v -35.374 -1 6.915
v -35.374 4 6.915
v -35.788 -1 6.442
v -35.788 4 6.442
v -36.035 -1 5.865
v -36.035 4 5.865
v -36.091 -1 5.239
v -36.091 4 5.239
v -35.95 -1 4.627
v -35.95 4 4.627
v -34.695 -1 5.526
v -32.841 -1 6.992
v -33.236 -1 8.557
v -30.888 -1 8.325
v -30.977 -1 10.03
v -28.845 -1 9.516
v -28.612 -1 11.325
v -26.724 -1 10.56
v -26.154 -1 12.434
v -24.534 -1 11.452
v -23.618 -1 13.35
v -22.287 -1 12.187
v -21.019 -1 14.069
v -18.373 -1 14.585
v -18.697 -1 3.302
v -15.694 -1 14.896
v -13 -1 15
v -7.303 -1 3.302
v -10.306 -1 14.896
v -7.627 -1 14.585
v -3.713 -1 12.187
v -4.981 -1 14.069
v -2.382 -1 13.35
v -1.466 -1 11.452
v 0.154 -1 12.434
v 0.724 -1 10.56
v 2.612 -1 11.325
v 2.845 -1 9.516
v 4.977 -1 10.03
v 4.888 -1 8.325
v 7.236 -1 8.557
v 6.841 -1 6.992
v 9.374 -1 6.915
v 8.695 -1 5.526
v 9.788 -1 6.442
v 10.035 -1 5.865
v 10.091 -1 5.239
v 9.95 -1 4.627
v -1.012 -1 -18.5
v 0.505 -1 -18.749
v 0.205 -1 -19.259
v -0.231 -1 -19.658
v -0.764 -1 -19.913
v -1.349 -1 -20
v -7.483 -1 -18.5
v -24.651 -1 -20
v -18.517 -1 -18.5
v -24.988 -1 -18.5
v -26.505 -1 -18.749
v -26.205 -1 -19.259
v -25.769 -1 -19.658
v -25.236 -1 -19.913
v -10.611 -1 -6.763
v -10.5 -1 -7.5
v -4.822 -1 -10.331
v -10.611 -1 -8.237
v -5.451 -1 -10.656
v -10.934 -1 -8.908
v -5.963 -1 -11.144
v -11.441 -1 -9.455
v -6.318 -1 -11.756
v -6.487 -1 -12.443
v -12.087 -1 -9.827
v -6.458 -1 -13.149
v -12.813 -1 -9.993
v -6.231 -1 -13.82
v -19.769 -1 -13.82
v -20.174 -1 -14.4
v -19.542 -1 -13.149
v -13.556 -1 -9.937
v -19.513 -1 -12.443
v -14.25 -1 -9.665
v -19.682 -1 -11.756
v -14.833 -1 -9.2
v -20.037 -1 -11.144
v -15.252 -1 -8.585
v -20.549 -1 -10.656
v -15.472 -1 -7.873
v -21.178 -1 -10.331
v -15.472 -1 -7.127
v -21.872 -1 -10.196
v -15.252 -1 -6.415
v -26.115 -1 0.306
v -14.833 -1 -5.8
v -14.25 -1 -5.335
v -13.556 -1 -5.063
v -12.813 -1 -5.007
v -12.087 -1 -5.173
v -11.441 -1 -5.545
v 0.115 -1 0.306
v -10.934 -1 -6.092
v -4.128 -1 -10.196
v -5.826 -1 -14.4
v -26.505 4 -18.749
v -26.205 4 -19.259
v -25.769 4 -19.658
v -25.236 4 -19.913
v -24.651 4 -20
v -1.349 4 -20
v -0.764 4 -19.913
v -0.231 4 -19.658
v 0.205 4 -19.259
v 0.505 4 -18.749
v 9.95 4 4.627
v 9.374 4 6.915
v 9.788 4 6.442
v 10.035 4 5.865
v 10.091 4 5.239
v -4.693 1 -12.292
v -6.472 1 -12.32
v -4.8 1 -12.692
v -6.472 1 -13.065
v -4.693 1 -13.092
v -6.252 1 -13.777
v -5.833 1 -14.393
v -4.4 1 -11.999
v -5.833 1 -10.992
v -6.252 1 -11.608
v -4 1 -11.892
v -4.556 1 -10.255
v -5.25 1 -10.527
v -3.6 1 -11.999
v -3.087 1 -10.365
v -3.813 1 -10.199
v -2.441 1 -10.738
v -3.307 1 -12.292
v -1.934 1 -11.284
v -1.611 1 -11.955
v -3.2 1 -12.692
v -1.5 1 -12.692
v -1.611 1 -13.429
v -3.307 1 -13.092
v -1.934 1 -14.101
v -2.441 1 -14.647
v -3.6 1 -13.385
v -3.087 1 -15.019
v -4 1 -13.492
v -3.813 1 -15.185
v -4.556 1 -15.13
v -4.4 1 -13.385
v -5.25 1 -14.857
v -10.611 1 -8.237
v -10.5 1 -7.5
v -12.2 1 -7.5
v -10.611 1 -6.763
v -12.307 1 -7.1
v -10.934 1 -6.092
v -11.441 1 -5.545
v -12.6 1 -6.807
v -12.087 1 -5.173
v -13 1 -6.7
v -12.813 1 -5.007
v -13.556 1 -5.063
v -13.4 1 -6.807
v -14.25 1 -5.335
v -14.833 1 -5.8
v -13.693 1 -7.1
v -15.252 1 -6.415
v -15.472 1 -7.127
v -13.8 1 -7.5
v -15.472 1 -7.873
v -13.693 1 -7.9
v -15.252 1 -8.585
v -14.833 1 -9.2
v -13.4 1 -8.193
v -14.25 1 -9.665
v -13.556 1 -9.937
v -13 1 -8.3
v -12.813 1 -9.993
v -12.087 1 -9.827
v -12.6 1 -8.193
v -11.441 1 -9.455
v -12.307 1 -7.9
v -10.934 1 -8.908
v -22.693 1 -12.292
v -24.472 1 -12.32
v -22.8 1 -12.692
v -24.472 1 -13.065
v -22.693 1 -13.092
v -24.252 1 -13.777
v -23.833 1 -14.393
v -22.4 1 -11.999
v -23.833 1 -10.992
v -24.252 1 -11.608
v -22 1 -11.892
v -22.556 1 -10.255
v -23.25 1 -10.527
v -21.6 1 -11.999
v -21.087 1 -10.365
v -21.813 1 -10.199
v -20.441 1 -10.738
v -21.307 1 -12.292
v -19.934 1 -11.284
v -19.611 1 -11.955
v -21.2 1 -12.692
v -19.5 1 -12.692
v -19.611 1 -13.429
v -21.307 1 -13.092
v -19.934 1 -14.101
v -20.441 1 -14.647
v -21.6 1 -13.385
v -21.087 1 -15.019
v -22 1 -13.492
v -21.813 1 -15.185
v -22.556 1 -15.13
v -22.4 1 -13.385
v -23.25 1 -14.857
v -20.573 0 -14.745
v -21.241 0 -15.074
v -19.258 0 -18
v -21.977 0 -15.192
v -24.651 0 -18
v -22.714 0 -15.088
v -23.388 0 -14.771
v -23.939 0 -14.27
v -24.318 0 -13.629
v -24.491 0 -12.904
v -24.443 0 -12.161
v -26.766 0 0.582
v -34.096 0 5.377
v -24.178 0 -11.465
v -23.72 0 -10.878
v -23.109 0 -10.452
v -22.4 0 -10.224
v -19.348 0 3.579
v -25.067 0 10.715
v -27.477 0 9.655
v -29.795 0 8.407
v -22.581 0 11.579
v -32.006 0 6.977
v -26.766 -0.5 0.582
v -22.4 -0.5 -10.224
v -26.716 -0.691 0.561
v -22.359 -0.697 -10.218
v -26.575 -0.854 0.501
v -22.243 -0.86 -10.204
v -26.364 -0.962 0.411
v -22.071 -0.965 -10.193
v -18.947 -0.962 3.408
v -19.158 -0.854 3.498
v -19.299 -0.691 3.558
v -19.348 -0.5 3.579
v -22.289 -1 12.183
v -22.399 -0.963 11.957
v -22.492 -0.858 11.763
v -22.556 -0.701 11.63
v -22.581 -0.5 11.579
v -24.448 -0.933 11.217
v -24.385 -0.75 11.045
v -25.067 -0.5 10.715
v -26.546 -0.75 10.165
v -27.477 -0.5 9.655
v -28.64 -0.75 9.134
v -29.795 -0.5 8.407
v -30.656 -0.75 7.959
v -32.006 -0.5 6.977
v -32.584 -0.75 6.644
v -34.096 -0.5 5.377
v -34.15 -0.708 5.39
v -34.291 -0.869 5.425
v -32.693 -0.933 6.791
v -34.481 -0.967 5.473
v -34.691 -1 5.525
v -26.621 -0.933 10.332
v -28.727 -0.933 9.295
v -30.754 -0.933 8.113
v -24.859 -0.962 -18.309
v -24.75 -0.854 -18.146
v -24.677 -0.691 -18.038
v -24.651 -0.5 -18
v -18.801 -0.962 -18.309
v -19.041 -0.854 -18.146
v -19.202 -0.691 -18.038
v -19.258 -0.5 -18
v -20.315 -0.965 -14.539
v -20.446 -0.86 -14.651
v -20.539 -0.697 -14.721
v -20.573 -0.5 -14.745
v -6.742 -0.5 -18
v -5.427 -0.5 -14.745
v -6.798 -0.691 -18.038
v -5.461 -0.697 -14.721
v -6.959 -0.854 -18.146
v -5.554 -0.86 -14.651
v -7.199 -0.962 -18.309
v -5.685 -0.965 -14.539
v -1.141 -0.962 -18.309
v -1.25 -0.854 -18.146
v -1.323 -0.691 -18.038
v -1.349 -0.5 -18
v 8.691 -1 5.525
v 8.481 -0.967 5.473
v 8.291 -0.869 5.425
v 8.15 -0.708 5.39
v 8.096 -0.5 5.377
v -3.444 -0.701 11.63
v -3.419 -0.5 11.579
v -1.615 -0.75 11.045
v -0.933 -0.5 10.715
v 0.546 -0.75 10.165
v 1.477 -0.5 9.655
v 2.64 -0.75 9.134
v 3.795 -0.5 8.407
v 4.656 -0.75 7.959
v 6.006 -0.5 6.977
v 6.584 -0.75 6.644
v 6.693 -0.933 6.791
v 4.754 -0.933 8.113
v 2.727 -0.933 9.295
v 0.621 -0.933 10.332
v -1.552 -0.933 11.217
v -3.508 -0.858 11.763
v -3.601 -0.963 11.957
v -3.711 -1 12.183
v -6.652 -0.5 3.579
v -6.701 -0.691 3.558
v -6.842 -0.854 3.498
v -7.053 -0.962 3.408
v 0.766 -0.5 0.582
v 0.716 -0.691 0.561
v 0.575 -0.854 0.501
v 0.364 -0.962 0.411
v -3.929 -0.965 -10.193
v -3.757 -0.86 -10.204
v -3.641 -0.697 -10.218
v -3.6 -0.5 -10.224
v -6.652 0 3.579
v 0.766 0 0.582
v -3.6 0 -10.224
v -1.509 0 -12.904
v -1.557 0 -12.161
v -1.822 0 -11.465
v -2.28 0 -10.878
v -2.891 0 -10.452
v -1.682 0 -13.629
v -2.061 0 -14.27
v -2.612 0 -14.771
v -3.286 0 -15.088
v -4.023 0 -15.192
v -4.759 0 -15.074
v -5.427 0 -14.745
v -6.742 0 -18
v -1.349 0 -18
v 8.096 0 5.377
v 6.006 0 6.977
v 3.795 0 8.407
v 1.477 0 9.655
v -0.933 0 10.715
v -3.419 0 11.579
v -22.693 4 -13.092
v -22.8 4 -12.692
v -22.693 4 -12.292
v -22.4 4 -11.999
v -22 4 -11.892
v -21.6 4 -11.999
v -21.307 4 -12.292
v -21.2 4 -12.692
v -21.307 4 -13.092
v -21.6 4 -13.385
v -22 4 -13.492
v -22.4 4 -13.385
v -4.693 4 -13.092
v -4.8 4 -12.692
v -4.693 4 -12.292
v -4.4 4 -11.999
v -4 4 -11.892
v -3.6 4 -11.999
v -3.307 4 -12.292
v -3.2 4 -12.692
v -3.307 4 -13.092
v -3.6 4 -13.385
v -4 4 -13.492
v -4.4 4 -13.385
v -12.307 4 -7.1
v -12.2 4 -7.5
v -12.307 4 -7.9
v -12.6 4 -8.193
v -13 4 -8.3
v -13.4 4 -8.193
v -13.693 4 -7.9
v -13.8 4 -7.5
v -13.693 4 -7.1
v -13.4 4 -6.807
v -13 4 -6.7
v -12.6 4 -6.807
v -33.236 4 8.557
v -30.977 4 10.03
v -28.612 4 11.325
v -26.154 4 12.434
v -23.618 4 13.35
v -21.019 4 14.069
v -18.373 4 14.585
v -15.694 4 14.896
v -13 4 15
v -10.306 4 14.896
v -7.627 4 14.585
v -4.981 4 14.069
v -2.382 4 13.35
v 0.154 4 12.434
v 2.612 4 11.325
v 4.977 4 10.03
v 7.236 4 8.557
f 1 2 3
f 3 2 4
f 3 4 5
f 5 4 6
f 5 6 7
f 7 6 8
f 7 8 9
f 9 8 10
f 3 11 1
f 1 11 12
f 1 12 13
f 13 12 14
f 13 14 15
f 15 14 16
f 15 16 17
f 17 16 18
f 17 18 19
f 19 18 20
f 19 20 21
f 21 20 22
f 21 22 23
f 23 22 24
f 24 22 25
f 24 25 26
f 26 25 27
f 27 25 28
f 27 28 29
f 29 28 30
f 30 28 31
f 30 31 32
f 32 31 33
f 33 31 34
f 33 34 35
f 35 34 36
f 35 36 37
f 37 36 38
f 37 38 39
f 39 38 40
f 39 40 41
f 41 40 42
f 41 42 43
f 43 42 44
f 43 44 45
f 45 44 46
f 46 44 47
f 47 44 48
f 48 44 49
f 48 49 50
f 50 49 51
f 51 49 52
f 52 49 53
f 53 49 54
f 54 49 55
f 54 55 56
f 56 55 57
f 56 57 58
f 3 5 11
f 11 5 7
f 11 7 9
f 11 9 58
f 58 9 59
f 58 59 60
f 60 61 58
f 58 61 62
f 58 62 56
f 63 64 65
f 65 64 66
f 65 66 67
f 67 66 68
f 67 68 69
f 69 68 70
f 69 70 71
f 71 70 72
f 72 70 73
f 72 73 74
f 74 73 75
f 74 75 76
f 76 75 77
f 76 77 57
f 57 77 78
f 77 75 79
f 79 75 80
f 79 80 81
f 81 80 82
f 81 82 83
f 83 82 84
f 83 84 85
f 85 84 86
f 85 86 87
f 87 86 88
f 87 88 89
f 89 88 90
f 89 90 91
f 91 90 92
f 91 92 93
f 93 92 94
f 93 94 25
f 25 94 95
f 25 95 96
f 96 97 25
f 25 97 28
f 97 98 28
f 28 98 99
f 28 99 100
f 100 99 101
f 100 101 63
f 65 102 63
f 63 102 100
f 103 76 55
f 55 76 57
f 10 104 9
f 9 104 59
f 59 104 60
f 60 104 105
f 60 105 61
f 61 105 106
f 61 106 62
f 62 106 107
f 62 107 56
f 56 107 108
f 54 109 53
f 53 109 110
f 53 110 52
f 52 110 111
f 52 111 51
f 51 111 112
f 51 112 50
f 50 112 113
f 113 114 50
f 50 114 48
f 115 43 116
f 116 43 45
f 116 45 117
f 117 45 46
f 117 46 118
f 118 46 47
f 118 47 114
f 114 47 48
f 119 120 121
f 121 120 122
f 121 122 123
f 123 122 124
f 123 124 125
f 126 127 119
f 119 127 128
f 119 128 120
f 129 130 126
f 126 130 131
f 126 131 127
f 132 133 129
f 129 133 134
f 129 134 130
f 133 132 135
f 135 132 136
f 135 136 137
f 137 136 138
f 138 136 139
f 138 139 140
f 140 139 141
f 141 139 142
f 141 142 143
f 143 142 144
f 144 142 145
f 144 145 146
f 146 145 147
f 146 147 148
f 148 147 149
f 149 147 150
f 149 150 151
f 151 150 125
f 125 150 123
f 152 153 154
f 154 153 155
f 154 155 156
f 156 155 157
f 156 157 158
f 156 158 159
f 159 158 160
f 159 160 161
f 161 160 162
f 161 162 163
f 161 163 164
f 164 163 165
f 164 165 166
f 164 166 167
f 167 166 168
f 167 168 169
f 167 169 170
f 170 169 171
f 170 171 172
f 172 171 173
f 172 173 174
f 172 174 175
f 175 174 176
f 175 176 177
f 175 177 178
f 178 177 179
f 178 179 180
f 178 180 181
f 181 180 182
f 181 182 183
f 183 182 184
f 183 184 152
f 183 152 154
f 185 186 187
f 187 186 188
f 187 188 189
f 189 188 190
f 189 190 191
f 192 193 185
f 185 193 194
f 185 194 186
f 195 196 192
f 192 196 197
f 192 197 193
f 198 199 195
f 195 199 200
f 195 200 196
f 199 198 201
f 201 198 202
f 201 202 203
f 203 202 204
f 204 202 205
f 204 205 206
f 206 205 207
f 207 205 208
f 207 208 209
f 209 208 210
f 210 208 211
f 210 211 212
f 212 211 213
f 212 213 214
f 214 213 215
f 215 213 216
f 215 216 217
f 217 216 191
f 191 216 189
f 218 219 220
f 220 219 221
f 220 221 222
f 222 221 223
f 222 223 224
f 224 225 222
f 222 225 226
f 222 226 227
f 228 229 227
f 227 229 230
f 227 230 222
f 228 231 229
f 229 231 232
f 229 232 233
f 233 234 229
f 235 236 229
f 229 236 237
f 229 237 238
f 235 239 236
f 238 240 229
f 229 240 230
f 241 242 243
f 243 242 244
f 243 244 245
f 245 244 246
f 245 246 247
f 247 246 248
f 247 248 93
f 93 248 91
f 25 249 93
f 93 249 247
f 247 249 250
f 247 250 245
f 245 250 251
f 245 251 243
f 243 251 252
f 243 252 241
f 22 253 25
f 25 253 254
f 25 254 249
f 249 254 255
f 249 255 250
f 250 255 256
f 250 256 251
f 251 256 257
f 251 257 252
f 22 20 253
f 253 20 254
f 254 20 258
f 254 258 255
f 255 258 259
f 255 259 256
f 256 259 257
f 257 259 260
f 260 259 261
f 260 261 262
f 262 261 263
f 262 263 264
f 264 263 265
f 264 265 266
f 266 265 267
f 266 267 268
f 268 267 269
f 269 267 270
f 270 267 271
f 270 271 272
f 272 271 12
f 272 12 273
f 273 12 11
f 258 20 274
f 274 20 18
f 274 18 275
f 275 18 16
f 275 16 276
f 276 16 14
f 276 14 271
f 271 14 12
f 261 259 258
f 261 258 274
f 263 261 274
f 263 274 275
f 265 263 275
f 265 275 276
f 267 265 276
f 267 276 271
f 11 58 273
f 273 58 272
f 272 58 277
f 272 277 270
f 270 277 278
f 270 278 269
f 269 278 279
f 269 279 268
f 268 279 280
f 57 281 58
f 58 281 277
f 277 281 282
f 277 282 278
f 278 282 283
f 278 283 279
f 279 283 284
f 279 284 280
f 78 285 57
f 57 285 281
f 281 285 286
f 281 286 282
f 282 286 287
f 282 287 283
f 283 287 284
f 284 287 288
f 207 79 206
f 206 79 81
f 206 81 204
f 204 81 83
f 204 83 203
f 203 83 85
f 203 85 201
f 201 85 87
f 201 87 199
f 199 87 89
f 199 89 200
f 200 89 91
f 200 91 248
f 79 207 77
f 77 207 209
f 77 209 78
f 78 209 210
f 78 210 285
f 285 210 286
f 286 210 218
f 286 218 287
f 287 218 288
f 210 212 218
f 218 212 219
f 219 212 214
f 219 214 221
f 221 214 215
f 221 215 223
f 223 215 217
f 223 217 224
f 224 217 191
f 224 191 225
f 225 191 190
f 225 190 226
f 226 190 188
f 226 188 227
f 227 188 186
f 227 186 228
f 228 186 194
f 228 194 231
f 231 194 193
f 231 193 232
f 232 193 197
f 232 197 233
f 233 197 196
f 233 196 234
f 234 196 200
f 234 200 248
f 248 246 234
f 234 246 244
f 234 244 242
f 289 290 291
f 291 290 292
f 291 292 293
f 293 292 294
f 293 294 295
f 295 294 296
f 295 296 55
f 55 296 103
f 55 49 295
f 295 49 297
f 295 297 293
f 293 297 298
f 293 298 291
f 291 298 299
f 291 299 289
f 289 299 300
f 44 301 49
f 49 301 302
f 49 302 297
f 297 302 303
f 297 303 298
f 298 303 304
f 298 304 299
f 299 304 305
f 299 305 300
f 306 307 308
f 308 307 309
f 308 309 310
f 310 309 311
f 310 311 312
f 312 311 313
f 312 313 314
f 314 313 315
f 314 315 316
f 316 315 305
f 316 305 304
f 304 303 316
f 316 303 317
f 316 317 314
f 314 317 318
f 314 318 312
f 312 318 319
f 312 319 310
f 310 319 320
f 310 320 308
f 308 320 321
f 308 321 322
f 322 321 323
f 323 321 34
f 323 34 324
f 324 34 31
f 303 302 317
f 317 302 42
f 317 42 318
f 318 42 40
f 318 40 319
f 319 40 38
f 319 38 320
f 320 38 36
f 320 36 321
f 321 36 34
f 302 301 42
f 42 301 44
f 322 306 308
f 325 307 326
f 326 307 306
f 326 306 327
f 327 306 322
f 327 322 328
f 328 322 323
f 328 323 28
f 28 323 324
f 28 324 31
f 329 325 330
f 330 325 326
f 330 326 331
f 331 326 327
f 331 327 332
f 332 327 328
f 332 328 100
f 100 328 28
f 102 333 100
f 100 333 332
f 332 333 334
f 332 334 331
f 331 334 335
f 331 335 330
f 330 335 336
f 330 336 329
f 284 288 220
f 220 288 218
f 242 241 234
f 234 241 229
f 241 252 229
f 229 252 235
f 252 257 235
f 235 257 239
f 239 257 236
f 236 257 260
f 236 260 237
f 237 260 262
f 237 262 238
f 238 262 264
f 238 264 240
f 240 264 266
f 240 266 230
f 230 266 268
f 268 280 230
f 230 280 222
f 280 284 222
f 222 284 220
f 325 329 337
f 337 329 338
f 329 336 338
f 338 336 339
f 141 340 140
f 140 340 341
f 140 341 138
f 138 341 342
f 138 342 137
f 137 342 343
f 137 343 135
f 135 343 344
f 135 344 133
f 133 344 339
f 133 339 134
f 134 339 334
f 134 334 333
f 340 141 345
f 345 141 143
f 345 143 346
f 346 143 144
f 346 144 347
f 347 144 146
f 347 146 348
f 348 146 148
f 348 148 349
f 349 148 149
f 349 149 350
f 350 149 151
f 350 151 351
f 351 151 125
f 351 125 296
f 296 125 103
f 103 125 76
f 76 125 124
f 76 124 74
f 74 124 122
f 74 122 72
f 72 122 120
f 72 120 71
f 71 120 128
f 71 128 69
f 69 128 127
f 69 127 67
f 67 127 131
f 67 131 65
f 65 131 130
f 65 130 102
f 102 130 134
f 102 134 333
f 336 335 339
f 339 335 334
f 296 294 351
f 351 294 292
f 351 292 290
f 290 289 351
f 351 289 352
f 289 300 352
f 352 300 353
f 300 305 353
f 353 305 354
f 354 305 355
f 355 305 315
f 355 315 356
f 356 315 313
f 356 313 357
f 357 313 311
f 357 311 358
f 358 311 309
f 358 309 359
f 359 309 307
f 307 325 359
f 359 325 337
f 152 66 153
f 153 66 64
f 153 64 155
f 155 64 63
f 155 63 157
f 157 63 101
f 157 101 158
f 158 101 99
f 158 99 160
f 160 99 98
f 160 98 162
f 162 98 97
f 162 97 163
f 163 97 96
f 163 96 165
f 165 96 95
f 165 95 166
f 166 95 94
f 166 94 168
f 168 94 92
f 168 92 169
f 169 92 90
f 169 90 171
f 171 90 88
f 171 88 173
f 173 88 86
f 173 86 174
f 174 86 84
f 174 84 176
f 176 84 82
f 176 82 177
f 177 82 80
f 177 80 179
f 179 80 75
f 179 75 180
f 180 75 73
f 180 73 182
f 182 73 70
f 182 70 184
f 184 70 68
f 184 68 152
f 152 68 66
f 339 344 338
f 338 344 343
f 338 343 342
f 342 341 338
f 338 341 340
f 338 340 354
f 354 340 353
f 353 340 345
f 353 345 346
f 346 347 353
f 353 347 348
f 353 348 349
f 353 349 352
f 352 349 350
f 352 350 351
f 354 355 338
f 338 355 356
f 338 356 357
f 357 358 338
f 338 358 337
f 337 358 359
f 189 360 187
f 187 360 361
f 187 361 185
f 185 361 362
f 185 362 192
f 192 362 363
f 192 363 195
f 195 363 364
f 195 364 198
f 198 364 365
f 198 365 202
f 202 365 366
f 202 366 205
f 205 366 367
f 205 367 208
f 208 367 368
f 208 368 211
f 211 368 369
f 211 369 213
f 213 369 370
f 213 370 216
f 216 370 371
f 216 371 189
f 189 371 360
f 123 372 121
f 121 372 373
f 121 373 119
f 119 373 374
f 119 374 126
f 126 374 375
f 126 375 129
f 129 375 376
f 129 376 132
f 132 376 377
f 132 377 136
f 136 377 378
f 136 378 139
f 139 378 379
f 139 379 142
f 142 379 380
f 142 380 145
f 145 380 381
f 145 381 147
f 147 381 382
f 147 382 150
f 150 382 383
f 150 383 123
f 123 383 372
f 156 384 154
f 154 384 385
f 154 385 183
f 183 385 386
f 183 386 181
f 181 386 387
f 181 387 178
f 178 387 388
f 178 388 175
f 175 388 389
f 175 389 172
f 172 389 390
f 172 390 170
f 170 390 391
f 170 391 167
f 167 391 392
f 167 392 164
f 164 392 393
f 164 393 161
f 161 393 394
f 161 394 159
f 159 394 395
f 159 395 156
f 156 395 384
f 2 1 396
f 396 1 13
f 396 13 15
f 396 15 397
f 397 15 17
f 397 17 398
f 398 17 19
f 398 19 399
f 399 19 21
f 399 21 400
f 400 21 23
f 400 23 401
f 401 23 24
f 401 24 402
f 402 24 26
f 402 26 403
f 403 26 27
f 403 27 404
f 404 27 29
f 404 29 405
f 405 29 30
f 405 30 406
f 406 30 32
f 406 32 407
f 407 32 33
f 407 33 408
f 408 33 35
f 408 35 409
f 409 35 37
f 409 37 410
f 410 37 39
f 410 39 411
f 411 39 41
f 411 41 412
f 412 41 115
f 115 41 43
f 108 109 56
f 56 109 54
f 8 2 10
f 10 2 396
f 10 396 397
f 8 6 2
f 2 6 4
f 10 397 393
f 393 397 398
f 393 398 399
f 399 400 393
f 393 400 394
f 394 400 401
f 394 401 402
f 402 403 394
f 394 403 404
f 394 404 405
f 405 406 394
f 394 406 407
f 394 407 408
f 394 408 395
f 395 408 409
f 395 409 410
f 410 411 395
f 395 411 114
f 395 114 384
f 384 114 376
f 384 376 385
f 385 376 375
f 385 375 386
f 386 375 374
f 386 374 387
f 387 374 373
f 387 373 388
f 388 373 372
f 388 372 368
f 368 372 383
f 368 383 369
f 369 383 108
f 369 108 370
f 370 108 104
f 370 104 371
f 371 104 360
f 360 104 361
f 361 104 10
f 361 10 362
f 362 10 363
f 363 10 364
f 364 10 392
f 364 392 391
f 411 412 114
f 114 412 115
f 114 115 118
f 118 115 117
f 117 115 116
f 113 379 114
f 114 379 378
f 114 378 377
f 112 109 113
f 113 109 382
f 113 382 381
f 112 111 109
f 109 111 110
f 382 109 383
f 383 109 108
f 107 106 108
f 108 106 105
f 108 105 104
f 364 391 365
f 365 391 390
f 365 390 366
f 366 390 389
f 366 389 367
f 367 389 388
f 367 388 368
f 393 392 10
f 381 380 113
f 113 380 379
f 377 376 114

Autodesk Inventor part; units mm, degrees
ref_plane "YZ Plane" through (0, 0, 0) normal (1, 0, 0) x (0, 1, 0)
ref_plane "XZ Plane" through (0, 0, 0) normal (0, 1, 0) x (-1, 0, 0)
ref_plane "XY Plane" through (0, 0, 0) normal (0, 0, 1) x (1, 0, 0)
sketch "スケッチ1" plane through (0, 0, 0) normal (0, 1, 0) x (-1, 0, 0)
  line L0 (26, 0) -> (0, 0)
  line L1 (0, 0) -> (0, -15)
  line L2 (0, -15) -> (26, -15)
  line L3 (26, -15) -> (26, 0)
  line L4 (36.4849, 5.9511) -> (26, -20)
  line L5 (26, -20) -> (0, -20)
  line L6 (0, -20) -> (-10.4849, 5.9511)
  arc A0 (36.4849, 5.9511) -> (-10.4849, 5.9511) centre (13, -20) ccw
  line L7 (0, 0) -> (26, -15)
  line L8 (0, -15) -> (26, 0)
  line L9 (4, -2.3077) -> (22, -2.3077)
  line L10 (22, -2.3077) -> (22, -12.6923)
  line L11 (22, -12.6923) -> (4, -12.6923)
  line L12 (4, -12.6923) -> (4, -2.3077)
  circle A1 centre (4, -2.3077) radius 0.8
  circle A2 centre (4, -12.6923) radius 0.8
  circle A3 centre (22, -2.3077) radius 0.8
  circle A4 centre (22, -12.6923) radius 0.8
  circle A5 centre (13, -7.5) radius 0.8
  point P0 (22.6929, -13.0921)
  point P1 (21.2, -12.6923)
  dimension "d0" = 26
  dimension "d1" = 15
  dimension "d4" = 22
  dimension "d5" = 22
  dimension "d6" = 5
  dimension "d7" = 35
  dimension "d23" = 4
  dimension "d24" = 1.6
  dimension "d25" = 1.6
  dimension "d26" = 1.6
  dimension "d27" = 1.6
  dimension "d32" = 1.6
extrude "押し出し1" add sketch "スケッチ1" along normal blind 4 contours L8 A3 L9 A1 L7 L0 | L3 L7 A4 L10 A3 L8 | L7 A1 L12 A2 L8 L1 | L2 L8 A2 L11 A4 L7 | A3 L10 L8 | L8 L9 A3 | A1 L9 L7 | L7 L12 A1 | L10 A3 L8 | L8 A3 L9 | A3 L8 A5 L7 A1 L9 | L9 A1 L7 | L7 A1 L12 | A1 L7 A5 L8 A2 L12 | L11 A2 L8 A5 L7 A4 | A3 L10 A4 L7 A5 L8 | L4 L5 L6 A0
sketch "スケッチ2" plane through (0, 0, 0) normal (0, -1, 0) x (1, 0, 0)
  arc A0 (-29.9016, 8.3432) -> (-34.0957, 5.3766) centre (-13, -20) ccw
  arc A1 (10.4849, 5.9511) -> (-36.4849, 5.9511) centre (-13, -20) ccw projected
  arc A2 (8.0957, 5.3766) -> (3.9016, 8.3432) centre (-13, -20) ccw
  line L0 (8.0957, 5.3766) -> (-1.349, -18)
  line L1 (-29.9016, 8.3432) -> (-19.2583, -18)
  line L2 (-34.0957, 5.3766) -> (-24.651, -18)
  line L3 (10.4849, 5.9511) -> (0, -20) projected
  line L4 (-26, -20) -> (-36.4849, 5.9511) projected
  line L5 (3.9016, 8.3432) -> (-6.7417, -18)
  line L6 (-24.651, -18) -> (-19.2583, -18)
  line L7 (0, -20) -> (-26, -20) projected
  line L8 (-6.7417, -18) -> (-1.349, -18)
  circle A3 centre (-4, -12.6923) radius 0.8 projected
  circle A4 centre (-22, -12.6923) radius 0.8 projected
  circle A5 centre (-4, -12.6923) radius 2.5
  circle A6 centre (-22, -12.6923) radius 2.5
  circle A7 centre (-13, -7.5) radius 0.8 projected
  circle A8 centre (-13, -7.5) radius 2.5
  arc A9 (-22.5806, 11.5787) -> (-29.9016, 8.3432) centre (-13, -20) ccw
  arc A10 (3.9016, 8.3432) -> (-3.4194, 11.5787) centre (-13, -20) ccw
  line L9 (-22.5806, 11.5787) -> (-19.3484, 3.5787)
  line L10 (-19.3484, 3.5787) -> (-26.7659, 0.5818)
  line L11 (-3.4194, 11.5787) -> (-6.6516, 3.5787)
  line L12 (-6.6516, 3.5787) -> (0.7659, 0.5818)
  point P0 (-22.3998, -10.2245)
  point P1 (-20.5733, -14.7452)
  point P2 (-5.4267, -14.7452)
  point P3 (-3.6002, -10.2245)
  dimension "d10" = 2
  dimension "d11" = 2
  dimension "d14" = 2
  dimension "d15" = 2
  dimension "d16" = 5
  dimension "d17" = 2
  dimension "d18" = 2
  dimension "d19" = 5
  dimension "d29" = 5
  dimension "d30" = 5
  dimension "d33" = 5
  dimension "d50" = 8
  dimension "d51" = 8
  dimension "d52" = 8
  dimension "d53" = 8
extrude "押し出し2" add sketch "スケッチ2" along normal blind 1 contours L3 L7 L4 A1
fillet "フィレット1" radius 0.5 14 edges at (3.3734, -1, -6.3117) (2.6485, -1, 9.0538) (-6.0842, -1, -16.3726) (-1.4172, -1, -4.8213) (-4.0454, -1, -18) (-19.9158, -1, -16.3726) (-24.5828, -1, -4.8213) (-21.9546, -1, -18) (-29.3734, -1, -6.3117) (-28.6485, -1, 9.0538) (-5.0355, -1, 7.5787) (-2.9429, -1, 2.0802) (-20.9645, -1, 7.5787) (-23.0571, -1, 2.0802)
extrude "押し出し3" cut sketch "スケッチ2" against normal blind 1 contours A6 L1 A4 | L1 A4 A6 | A4 L1 | L1 A4 | A5 L5 A3 | L5 A3 A5 | A3 L5 | L5 A3 | A8
fillet "フィレット2" radius 2 4 edges at (10.4849, 1.5, 5.9511) (0, 1.5, -20) (-26, 1.5, -20) (-36.4849, 1.5, 5.9511)
equation "\"d5\" = d4"
properties part number "toe_sole_front"
